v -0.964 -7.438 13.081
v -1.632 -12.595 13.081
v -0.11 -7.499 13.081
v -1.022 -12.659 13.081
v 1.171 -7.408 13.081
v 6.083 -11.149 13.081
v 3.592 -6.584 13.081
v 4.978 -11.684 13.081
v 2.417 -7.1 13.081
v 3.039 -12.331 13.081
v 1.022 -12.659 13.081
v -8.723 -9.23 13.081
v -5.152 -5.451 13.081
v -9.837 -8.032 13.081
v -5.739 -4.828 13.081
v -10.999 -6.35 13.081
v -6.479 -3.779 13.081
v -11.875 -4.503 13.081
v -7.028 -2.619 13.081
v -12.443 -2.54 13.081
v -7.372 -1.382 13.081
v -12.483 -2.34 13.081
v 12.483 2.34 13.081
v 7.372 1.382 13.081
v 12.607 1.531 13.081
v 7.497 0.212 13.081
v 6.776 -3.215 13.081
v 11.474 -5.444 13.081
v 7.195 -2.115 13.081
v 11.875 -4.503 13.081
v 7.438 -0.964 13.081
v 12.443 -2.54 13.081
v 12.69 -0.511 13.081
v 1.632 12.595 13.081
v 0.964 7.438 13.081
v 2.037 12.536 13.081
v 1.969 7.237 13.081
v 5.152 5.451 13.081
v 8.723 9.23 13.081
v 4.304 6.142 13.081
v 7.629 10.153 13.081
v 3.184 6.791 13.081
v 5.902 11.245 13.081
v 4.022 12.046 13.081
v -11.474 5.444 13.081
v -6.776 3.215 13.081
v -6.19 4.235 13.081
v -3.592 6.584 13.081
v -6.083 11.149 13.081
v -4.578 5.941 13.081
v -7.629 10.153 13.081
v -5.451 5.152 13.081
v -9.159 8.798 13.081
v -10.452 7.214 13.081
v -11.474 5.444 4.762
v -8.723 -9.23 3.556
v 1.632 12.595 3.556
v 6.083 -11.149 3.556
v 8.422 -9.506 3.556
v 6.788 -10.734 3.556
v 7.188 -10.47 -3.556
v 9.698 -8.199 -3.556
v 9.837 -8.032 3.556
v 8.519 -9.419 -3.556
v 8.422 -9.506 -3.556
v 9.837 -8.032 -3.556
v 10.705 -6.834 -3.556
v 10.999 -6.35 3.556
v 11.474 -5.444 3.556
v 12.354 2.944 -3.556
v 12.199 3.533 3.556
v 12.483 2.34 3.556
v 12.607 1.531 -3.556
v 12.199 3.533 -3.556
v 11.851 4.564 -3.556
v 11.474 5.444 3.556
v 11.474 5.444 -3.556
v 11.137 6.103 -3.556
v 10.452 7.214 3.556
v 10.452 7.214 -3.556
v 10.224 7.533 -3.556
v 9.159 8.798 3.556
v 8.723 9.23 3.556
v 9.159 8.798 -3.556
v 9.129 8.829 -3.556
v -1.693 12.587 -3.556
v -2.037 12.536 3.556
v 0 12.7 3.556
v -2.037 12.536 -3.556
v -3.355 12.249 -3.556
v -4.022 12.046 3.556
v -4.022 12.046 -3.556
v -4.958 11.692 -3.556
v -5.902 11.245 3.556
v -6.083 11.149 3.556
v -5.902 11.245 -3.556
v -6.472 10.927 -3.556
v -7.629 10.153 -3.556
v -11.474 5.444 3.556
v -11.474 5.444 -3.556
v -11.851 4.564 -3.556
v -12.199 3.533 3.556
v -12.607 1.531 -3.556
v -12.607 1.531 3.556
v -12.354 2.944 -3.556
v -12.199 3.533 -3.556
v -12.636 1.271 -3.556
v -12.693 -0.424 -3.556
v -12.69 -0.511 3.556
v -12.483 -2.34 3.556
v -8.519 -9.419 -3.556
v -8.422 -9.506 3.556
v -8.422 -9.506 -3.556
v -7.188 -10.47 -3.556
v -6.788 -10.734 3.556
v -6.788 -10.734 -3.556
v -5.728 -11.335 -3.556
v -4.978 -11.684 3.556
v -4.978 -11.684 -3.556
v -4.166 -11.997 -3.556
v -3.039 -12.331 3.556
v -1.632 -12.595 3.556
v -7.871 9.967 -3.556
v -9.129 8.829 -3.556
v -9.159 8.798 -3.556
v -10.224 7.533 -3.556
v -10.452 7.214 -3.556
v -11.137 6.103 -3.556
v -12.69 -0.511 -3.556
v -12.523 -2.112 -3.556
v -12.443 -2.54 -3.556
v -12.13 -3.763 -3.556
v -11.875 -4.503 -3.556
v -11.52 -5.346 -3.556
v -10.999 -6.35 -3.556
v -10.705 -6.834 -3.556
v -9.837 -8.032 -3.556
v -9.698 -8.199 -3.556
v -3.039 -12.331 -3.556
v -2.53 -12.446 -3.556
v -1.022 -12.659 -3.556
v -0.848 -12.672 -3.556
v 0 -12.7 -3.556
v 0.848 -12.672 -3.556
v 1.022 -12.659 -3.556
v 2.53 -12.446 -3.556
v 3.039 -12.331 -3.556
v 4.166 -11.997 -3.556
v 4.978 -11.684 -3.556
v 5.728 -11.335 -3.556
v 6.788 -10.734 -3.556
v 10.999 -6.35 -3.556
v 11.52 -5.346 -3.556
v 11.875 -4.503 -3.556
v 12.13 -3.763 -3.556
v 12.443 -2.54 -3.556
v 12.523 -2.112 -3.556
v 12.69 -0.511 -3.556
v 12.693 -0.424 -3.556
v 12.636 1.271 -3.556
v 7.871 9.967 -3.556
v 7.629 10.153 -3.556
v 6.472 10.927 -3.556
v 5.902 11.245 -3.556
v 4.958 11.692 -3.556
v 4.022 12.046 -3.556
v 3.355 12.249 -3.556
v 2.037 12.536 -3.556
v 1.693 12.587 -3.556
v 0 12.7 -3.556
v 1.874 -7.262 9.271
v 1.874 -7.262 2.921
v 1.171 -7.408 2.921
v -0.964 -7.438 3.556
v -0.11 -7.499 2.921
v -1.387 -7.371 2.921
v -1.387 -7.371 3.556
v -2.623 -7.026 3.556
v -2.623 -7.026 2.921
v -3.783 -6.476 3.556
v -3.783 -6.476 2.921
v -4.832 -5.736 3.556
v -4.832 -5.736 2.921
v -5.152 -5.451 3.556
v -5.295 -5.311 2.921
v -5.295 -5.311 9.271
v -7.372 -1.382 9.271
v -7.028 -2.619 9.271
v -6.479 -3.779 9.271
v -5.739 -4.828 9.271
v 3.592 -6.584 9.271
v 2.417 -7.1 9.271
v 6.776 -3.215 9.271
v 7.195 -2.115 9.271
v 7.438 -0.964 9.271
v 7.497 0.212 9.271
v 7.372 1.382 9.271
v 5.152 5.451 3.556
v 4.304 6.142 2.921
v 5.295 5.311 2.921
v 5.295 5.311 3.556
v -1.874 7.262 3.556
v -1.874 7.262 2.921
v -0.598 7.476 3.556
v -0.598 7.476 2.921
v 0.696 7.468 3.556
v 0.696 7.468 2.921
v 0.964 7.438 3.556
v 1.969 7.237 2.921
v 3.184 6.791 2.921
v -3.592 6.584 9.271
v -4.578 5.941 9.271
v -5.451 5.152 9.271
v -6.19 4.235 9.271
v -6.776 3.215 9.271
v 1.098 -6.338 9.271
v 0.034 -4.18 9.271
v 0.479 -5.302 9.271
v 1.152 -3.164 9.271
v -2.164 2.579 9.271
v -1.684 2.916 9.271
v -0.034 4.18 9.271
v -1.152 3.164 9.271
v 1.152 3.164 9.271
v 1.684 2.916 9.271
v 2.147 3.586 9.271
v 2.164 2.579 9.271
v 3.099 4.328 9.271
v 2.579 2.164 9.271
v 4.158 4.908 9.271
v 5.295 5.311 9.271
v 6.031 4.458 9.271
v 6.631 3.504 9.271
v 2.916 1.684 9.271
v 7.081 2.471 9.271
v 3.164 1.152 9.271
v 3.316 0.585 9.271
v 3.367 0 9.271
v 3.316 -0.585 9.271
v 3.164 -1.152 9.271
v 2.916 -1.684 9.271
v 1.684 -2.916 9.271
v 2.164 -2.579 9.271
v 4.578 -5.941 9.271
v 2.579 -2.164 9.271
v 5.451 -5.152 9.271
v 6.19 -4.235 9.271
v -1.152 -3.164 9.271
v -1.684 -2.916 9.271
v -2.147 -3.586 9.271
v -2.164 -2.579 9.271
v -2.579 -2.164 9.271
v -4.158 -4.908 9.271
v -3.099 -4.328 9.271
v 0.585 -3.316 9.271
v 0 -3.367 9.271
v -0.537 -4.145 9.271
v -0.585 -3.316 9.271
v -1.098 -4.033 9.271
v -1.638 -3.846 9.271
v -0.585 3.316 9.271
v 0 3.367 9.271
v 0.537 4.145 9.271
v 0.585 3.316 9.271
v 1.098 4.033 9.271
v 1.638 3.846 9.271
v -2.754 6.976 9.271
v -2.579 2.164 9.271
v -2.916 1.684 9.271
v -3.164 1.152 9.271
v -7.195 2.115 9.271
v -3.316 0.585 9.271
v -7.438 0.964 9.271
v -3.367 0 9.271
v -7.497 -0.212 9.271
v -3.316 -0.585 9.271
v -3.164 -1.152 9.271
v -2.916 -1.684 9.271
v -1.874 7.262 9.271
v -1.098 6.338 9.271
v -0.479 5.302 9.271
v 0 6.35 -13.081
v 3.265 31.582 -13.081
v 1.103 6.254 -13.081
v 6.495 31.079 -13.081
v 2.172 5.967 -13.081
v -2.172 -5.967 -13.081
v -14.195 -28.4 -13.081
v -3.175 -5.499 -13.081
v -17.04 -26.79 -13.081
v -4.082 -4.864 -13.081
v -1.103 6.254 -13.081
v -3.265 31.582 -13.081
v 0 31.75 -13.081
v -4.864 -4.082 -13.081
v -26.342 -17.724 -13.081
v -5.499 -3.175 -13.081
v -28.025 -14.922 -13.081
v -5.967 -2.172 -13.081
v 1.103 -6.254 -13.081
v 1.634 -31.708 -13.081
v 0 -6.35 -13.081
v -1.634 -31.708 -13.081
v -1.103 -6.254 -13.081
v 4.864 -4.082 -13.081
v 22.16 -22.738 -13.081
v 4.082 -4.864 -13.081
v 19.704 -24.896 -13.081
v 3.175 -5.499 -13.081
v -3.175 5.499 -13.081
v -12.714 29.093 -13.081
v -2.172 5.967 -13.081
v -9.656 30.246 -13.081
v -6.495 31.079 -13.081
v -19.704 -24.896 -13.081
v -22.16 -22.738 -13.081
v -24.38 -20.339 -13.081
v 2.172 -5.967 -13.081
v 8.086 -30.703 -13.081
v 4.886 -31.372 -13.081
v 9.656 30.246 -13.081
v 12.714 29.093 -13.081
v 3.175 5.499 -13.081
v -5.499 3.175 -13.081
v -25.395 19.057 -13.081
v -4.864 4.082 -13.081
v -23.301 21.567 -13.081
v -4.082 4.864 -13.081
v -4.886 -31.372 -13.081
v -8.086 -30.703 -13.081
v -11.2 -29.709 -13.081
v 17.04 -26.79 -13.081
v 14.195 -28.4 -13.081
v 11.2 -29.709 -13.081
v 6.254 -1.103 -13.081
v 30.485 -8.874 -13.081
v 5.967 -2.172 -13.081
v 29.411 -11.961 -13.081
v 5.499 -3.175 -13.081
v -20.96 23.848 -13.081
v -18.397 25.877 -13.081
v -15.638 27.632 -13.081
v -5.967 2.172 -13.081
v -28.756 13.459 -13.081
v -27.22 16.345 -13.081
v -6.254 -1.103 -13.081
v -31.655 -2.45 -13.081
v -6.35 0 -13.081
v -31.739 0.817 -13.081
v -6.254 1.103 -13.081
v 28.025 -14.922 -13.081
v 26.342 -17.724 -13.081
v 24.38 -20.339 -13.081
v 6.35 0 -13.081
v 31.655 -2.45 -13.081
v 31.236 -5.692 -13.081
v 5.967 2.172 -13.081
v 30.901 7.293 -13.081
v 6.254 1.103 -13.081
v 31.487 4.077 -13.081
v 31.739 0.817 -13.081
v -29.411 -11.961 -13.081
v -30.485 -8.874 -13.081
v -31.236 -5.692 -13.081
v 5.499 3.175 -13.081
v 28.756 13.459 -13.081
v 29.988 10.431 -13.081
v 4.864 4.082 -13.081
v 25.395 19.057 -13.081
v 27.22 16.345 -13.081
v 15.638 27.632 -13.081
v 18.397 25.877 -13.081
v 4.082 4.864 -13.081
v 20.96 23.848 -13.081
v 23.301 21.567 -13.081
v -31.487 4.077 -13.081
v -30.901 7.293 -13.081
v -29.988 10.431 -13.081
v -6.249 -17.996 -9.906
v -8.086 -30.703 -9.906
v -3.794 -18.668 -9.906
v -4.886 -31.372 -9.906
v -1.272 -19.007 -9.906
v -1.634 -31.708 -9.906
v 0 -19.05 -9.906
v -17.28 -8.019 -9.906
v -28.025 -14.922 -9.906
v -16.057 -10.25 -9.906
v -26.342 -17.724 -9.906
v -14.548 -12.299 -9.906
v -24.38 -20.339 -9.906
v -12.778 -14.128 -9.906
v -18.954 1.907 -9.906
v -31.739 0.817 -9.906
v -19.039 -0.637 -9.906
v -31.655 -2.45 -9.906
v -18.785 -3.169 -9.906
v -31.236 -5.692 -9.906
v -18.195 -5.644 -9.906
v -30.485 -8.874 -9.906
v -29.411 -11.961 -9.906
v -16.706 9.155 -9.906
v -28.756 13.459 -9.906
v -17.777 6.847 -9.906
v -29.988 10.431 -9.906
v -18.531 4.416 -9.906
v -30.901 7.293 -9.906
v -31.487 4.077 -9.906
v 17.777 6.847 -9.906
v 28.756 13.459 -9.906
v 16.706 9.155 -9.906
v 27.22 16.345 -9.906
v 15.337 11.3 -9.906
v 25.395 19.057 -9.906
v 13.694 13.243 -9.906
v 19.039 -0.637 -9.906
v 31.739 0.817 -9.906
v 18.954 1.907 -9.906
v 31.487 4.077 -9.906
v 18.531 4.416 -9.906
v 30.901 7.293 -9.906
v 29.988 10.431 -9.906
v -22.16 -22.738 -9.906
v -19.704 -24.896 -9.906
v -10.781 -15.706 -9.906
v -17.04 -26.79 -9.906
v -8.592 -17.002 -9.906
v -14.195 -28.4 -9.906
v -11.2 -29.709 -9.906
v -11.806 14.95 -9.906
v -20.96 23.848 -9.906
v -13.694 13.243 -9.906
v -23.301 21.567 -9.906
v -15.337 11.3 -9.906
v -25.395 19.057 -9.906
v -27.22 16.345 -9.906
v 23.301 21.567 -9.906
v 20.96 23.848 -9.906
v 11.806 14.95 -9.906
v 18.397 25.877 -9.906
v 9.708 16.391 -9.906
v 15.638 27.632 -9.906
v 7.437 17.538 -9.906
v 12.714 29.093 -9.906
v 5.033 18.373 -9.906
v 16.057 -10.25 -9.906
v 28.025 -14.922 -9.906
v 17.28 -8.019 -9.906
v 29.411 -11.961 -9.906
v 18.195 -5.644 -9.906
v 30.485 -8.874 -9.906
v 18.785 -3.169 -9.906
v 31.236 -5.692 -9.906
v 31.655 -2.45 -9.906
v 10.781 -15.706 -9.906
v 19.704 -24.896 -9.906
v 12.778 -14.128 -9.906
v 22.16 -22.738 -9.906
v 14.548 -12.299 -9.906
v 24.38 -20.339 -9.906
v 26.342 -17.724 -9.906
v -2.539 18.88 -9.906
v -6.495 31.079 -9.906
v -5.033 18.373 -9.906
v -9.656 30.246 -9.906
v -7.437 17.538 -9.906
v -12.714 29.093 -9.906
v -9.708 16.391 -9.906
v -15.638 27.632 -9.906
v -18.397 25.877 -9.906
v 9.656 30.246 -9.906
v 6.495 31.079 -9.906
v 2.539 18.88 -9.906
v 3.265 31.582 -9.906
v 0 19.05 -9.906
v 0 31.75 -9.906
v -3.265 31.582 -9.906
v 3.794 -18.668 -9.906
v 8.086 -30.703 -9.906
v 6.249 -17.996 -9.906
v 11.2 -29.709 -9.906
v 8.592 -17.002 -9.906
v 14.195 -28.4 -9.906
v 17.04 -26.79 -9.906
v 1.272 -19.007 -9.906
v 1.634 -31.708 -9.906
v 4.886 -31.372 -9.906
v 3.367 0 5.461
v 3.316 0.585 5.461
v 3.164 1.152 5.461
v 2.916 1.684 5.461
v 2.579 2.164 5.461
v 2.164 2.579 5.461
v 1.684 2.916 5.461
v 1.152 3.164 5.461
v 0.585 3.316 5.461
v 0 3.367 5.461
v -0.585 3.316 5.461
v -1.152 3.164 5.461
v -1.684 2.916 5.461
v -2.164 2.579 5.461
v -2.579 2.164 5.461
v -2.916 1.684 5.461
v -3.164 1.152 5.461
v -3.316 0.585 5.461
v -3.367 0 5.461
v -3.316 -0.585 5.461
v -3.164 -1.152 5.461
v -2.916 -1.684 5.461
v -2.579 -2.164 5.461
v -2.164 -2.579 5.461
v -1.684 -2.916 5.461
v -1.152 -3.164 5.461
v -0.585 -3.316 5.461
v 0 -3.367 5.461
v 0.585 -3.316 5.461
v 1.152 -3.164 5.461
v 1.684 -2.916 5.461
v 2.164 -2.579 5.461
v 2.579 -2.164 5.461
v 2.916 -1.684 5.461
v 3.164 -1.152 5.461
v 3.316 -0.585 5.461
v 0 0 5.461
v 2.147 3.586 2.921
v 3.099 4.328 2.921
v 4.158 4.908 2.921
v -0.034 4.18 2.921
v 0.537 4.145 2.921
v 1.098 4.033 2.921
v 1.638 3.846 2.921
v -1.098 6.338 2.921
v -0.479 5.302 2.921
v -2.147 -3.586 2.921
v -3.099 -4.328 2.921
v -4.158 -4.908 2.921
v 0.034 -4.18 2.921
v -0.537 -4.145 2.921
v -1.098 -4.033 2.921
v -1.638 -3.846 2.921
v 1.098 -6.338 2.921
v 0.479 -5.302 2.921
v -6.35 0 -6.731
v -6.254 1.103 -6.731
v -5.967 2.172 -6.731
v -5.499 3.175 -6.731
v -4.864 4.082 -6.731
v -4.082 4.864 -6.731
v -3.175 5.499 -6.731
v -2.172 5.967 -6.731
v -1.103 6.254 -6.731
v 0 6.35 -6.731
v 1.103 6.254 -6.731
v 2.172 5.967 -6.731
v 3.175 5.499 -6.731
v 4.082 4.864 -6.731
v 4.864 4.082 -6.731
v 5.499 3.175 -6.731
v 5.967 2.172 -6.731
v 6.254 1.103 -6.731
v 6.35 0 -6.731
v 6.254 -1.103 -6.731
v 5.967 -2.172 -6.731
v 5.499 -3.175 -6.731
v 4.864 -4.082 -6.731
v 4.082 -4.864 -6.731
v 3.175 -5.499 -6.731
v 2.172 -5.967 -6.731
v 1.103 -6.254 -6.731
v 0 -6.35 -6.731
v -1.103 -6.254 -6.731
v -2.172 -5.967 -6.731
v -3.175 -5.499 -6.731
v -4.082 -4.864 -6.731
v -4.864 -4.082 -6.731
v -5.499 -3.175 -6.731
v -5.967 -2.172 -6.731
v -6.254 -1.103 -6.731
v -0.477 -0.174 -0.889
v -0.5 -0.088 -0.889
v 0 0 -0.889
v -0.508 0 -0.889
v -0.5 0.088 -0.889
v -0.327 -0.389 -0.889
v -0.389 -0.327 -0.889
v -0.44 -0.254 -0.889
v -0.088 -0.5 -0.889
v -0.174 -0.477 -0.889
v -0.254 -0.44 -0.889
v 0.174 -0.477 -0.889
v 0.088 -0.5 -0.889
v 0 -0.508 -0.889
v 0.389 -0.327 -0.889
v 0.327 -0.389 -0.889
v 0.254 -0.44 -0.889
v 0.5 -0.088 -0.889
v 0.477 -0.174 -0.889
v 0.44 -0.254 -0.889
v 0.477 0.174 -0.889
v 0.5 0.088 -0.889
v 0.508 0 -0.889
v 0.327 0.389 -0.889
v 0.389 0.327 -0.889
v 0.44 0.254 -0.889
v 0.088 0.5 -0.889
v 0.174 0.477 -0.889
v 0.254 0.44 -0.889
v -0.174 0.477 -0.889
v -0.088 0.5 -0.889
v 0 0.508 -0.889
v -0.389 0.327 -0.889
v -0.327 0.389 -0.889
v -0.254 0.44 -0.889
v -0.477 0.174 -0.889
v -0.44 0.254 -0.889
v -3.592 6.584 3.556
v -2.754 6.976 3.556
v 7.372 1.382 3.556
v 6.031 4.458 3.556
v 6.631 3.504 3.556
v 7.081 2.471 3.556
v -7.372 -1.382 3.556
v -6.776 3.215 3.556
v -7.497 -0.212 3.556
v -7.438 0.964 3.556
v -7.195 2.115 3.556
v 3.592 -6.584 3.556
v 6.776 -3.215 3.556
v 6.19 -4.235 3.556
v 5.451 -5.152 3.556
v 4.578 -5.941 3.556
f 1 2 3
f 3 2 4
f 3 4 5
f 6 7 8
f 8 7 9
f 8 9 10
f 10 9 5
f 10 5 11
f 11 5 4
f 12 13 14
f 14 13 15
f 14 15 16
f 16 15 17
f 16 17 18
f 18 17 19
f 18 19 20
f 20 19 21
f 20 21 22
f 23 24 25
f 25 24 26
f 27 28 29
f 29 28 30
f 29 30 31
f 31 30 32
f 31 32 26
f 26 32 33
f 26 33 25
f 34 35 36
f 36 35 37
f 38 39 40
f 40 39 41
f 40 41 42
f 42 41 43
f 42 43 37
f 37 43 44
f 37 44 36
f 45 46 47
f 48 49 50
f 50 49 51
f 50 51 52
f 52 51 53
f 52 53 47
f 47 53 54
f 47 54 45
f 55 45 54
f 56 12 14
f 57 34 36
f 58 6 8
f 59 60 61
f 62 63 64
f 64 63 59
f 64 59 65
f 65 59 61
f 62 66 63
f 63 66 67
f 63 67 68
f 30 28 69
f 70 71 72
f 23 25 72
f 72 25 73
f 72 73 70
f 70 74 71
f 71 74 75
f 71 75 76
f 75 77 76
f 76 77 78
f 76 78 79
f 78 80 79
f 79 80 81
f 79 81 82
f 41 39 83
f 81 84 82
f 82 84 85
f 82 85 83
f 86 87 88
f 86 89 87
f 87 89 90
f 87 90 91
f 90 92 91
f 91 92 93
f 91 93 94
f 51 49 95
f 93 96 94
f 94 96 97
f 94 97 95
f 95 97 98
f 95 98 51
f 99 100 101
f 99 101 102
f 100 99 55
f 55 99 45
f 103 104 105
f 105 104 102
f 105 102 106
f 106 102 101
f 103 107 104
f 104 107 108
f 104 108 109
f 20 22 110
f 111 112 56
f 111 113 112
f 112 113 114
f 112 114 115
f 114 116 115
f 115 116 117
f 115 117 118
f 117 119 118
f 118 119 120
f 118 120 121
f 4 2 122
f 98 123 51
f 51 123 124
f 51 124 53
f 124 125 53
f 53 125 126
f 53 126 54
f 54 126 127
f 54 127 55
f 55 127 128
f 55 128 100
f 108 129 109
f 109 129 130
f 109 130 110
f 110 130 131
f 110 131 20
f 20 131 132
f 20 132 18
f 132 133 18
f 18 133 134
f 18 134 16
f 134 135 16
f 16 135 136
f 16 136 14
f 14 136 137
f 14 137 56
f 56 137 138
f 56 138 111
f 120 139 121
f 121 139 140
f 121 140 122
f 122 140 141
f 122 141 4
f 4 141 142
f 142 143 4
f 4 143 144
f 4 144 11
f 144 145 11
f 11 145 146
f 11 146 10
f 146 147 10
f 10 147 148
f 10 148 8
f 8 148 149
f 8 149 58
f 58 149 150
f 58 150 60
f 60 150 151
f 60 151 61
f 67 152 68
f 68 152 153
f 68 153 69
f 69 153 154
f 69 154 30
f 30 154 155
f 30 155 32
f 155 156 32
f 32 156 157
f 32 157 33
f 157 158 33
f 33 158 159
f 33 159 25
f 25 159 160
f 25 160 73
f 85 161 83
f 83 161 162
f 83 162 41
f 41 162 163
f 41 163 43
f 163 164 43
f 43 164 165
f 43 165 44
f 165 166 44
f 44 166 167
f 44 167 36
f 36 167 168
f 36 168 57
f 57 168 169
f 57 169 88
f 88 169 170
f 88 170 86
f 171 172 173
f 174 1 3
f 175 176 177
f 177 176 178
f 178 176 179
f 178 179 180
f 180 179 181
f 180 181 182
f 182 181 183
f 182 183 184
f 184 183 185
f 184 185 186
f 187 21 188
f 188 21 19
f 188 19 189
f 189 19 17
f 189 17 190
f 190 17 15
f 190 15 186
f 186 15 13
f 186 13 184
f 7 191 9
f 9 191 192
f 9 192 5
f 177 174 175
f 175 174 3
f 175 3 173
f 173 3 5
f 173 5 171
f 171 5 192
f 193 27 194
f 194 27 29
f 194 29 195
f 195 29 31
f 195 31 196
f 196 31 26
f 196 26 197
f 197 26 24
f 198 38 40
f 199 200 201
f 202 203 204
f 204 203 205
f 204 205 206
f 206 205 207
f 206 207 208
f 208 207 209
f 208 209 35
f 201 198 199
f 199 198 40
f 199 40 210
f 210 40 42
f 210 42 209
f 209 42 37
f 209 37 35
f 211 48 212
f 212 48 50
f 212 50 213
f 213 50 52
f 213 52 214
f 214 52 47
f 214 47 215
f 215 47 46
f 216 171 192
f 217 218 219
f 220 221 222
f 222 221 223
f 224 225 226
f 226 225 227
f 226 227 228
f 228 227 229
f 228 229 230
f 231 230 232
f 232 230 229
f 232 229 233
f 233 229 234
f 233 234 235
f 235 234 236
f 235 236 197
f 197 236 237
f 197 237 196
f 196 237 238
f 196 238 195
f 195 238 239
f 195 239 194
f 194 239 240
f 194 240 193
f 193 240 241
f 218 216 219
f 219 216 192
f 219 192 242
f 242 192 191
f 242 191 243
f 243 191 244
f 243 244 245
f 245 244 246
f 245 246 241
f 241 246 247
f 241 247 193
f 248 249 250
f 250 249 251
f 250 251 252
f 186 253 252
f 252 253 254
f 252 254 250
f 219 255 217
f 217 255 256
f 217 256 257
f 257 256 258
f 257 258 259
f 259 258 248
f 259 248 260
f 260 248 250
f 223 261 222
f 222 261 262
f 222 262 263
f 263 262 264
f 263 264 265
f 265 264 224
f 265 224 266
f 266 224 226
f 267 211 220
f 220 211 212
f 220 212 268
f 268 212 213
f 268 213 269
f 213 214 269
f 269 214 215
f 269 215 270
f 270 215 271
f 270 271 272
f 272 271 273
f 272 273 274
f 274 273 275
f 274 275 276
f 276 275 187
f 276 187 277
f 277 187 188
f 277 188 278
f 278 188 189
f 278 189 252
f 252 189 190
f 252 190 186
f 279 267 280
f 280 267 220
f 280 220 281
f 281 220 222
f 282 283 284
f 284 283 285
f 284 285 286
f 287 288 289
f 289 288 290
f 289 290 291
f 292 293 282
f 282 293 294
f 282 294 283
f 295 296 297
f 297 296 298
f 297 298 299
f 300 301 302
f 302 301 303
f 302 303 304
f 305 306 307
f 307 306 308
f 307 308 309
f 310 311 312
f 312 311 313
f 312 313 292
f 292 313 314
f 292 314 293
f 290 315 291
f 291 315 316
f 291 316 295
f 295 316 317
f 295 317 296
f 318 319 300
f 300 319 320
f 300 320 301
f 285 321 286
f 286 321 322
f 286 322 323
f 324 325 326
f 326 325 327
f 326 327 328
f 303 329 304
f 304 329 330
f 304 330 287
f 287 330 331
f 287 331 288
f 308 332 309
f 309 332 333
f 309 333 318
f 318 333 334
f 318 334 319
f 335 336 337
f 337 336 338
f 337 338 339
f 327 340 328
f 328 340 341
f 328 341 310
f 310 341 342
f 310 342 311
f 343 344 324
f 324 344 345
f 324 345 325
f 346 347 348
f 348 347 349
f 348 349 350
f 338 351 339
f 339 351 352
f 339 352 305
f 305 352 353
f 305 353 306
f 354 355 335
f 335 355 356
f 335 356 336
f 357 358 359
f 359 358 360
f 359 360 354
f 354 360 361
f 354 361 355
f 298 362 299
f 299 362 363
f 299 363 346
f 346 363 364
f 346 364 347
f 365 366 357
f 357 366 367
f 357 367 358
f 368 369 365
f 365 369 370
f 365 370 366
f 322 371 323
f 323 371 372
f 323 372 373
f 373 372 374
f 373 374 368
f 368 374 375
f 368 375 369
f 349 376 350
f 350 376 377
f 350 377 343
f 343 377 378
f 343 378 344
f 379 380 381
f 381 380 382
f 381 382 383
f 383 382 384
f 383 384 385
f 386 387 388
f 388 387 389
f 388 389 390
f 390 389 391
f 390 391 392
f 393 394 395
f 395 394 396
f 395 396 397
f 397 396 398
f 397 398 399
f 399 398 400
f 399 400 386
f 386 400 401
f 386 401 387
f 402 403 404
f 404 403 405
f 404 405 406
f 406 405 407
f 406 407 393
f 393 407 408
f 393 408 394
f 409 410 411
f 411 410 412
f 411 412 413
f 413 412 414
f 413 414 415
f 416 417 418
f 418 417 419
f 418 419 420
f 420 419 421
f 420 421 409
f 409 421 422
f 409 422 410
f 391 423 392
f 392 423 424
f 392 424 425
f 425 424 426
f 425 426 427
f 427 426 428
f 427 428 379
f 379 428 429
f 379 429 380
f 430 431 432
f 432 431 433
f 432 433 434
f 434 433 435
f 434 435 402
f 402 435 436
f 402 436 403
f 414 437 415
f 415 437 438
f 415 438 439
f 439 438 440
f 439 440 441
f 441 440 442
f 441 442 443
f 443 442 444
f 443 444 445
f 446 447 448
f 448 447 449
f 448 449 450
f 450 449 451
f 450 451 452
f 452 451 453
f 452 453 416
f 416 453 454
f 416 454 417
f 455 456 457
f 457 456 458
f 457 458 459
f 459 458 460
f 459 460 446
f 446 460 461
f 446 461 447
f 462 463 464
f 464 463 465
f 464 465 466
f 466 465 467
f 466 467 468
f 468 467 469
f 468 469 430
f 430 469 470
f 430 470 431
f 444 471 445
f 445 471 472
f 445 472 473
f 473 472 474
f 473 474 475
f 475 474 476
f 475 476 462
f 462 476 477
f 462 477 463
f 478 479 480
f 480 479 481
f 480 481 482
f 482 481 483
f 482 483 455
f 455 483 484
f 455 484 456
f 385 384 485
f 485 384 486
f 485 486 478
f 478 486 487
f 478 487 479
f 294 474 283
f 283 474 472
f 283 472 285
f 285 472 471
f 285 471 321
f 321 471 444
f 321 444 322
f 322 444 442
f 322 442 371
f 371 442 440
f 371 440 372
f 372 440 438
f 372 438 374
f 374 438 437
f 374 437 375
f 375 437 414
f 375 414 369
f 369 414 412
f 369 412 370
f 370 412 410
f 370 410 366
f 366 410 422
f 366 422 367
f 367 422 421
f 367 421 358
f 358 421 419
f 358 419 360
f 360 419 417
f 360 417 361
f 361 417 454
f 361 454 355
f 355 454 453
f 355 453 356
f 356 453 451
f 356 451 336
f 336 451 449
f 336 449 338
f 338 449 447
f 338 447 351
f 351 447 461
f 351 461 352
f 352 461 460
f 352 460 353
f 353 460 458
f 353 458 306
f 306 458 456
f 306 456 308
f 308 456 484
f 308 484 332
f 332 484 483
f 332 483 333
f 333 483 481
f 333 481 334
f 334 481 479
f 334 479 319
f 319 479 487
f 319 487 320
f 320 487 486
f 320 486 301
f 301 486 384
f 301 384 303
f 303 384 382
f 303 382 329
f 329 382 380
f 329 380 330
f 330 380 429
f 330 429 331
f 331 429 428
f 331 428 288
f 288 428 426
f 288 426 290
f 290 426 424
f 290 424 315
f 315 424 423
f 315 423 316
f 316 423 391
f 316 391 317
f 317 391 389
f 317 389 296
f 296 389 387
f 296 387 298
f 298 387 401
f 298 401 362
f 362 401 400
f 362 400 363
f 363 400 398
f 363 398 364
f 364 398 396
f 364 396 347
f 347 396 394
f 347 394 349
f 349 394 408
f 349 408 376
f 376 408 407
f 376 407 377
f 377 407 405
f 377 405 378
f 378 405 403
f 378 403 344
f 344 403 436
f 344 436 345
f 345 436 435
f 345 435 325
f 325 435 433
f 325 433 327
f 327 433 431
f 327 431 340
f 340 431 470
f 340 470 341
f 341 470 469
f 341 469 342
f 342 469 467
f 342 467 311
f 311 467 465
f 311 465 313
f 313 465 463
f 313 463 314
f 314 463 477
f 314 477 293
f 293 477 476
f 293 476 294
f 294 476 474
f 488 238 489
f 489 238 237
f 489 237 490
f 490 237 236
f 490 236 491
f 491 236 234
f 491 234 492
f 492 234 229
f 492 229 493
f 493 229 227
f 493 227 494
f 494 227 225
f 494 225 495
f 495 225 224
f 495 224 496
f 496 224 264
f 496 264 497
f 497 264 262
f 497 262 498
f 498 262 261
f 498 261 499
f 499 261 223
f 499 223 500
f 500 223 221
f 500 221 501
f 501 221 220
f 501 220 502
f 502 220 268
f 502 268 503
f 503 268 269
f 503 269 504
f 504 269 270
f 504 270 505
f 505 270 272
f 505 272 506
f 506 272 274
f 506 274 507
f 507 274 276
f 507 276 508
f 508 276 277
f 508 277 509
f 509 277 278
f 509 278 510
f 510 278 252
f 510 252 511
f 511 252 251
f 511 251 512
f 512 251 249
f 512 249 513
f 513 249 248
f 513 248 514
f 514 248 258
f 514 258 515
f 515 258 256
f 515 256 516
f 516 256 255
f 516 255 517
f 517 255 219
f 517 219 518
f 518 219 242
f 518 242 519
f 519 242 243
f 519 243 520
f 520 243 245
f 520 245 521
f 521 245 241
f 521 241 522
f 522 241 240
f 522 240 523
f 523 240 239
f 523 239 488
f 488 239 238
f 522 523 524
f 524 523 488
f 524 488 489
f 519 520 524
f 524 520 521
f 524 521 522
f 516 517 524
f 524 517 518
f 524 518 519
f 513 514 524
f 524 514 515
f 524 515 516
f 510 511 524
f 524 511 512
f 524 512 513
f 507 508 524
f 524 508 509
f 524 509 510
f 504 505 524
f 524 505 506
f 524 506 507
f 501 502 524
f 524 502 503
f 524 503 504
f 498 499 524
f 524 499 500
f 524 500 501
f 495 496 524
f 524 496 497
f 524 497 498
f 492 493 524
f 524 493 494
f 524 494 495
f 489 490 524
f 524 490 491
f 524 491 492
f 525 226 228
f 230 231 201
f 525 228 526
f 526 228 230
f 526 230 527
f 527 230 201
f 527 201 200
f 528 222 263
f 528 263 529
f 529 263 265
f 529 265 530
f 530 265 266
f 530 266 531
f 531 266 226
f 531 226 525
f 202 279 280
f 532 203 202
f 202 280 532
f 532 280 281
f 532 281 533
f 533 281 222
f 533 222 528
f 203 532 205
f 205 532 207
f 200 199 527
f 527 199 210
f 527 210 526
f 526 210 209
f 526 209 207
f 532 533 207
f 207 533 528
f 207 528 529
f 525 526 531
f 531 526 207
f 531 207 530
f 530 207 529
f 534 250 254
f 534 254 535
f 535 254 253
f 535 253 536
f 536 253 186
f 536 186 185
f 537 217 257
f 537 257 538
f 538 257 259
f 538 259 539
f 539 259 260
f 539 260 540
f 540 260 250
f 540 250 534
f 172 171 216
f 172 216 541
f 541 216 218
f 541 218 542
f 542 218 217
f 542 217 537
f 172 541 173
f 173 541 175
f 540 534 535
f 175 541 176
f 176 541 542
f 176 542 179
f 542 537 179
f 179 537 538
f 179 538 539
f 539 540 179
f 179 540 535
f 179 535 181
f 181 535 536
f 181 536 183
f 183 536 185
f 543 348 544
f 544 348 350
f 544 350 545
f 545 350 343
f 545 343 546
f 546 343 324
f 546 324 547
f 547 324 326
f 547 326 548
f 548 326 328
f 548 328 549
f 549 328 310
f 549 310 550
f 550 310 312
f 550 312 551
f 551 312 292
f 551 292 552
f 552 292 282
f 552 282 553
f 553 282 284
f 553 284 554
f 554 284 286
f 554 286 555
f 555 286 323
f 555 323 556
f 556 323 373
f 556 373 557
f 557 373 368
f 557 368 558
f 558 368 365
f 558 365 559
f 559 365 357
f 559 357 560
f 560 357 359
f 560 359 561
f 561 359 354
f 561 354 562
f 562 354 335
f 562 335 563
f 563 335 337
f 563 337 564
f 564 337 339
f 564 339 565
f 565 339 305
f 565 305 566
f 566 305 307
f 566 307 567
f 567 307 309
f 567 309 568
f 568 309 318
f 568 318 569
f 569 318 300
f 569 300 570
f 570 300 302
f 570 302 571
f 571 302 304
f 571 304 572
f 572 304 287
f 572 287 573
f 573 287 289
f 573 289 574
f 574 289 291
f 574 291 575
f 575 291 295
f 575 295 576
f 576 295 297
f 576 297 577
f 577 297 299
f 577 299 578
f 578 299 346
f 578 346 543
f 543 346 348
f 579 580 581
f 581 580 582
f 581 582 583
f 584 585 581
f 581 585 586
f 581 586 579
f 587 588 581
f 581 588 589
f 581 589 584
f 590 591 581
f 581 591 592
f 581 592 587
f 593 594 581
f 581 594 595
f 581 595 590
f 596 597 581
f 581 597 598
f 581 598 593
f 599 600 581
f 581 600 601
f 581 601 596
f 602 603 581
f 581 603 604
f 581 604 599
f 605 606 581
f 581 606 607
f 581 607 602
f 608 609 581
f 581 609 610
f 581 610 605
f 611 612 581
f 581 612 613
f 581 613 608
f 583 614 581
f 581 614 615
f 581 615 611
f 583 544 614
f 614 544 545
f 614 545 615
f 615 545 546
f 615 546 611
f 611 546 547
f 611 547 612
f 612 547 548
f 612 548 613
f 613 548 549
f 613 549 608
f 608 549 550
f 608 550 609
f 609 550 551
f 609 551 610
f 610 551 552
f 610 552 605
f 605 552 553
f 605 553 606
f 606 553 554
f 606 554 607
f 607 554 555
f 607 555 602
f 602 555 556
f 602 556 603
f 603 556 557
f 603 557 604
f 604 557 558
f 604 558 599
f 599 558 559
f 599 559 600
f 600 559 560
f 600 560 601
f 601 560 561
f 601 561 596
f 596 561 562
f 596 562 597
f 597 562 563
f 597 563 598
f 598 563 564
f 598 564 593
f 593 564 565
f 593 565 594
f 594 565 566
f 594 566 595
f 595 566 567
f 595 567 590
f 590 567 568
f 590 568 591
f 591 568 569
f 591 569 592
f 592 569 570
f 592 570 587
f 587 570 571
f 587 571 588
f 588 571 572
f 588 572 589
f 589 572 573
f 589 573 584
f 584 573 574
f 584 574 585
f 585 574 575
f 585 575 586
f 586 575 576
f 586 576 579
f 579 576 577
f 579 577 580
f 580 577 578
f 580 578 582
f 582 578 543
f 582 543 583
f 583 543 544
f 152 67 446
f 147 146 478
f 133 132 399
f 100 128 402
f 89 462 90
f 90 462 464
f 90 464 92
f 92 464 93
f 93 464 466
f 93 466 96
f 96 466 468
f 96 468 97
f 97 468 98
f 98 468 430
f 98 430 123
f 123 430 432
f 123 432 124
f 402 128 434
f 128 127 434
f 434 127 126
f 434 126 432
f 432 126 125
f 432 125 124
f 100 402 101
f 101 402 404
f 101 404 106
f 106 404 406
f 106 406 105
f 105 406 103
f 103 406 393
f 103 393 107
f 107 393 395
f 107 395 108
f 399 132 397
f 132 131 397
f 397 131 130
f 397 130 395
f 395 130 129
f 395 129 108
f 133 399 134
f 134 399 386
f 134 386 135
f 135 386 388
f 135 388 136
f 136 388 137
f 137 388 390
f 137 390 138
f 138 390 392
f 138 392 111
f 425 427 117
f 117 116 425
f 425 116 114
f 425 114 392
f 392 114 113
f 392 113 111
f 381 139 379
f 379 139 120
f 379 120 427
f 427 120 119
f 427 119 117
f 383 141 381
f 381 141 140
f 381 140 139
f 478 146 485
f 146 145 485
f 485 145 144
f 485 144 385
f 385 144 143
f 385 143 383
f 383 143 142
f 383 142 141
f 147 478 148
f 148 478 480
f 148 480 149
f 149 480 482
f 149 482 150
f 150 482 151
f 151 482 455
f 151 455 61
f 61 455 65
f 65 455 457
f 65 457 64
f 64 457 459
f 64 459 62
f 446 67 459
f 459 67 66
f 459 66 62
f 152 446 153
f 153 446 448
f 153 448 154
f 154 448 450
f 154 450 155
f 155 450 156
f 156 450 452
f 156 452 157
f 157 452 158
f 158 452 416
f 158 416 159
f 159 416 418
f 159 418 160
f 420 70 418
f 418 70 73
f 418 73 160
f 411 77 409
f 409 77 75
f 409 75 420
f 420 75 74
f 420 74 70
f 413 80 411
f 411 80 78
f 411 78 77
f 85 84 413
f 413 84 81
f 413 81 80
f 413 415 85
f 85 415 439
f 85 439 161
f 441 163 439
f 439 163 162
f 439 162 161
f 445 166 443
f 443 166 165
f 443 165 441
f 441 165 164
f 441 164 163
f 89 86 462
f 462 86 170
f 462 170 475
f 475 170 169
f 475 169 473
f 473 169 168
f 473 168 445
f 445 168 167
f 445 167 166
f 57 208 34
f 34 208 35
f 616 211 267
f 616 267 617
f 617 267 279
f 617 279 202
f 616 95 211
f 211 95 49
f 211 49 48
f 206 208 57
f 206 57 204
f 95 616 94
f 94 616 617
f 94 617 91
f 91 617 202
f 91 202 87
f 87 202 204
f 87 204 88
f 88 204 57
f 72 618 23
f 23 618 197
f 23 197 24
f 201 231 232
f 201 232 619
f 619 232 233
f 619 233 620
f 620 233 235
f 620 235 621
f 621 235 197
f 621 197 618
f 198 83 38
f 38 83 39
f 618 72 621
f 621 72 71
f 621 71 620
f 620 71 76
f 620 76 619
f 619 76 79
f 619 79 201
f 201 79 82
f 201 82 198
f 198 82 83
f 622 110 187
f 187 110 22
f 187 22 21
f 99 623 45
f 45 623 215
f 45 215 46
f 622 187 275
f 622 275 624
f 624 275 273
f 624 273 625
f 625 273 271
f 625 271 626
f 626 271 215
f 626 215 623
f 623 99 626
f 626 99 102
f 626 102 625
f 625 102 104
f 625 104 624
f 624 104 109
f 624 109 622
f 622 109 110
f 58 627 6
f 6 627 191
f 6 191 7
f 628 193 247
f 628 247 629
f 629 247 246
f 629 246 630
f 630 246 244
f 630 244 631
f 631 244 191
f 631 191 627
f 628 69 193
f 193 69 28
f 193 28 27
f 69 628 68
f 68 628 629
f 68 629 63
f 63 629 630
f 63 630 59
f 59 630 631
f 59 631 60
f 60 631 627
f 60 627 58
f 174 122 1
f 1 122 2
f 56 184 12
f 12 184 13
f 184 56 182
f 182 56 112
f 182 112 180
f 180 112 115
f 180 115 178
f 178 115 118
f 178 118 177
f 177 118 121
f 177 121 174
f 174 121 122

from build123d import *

# Parameters (mm, degrees)
SKETCH11_R          = 3.3672
CUT_EXTRUDE5_DEPTH  = 3.81
SKETCH11_5_R        = 3.3672
CUT_EXTRUDE7_DEPTH  = 7.62
CUT_EXTRUDE8_DEPTH  = 10.16
SKETCH13_R          = 6.35
CUT_EXTRUDE10_DEPTH = 12.192
CHAMFER1_SIZE       = 5.842
CHAMFER2_SIZE       = 6.35
CUT_EXTRUDE11_DEPTH = 9.525


with BuildPart() as part:
    # Sketch2 → Revolve1 (revolve)
    with BuildSketch(Plane(origin=(0, 0, 0), x_dir=(0, 0, -1), z_dir=(1, 0, 0))):
        Polygon((-13.081, 0), (-13.081, 9.525), (-13.081, 12.7), (-9.906, 12.7), (9.906, 12.7), (9.906, 31.75), (13.081, 31.75), (13.081, 0), align=None)
    revolve(axis=Axis((0, 0, -13.081), (0, 0, 1)))

    # Sketch11 → Cut-Extrude5 (cut)
    # profile 1 of 4: a face of its own
    with BuildSketch(Plane.XY.offset(13.081)):
        with BuildLine():
            ThreePointArc((-5.295442149, -5.31114794), (-1.969377828, -7.23681912), (1.873833325, -7.262144908))
            ThreePointArc((1.873833325, -7.262144908), (0.767613275, -5.832118974), (0.033615166, -4.179864833))
            ThreePointArc((0.033615166, -4.179864833), (-1.097599909, -4.033320523), (-2.147079662, -3.586425647))
            ThreePointArc((-2.147079662, -3.586425647), (-3.617120551, -4.638887883), (-5.295442149, -5.31114794))
        make_face()
    # profile 2 of 4: a face of its own
    with BuildSketch(Plane.XY.offset(13.081)):
        with BuildLine():
            ThreePointArc((7.5, 0), (6.926969616, 2.875255109), (5.295442149, 5.31114794))
            ThreePointArc((5.295442149, 5.31114794), (3.617120551, 4.638887883), (2.147079662, 3.586425647))
            ThreePointArc((2.147079662, 3.586425647), (1.097599909, 4.033320523), (-0.033615166, 4.179864833))
            ThreePointArc((-0.033615166, 4.179864833), (-0.767613275, 5.832118974), (-1.873833325, 7.262144908))
            ThreePointArc((-1.873833325, 7.262144908), (-7.23681912, 1.969377828), (-5.295442149, -5.31114794))
            ThreePointArc((-5.295442149, -5.31114794), (-3.617120551, -4.638887883), (-2.147079662, -3.586425647))
            ThreePointArc((-2.147079662, -3.586425647), (-1.097599909, -4.033320523), (0.033615166, -4.179864833))
            ThreePointArc((0.033615166, -4.179864833), (0.767613275, -5.832118974), (1.873833325, -7.262144908))
            ThreePointArc((1.873833325, -7.262144908), (5.928901666, -4.593269536), (7.5, 0))
        make_face()
        Circle(SKETCH11_R, mode=Mode.SUBTRACT)
    # profile 3 of 4: a face of its own
    with BuildSketch(Plane.XY.offset(13.081)):
        Circle(SKETCH11_R)
    # profile 4 of 4: a face of its own
    with BuildSketch(Plane.XY.offset(13.081)):
        with BuildLine():
            ThreePointArc((2.147079662, 3.586425647), (3.617120551, 4.638887883), (5.295442149, 5.31114794))
            ThreePointArc((5.295442149, 5.31114794), (1.969377828, 7.23681912), (-1.873833325, 7.262144908))
            ThreePointArc((-1.873833325, 7.262144908), (-0.767613275, 5.832118974), (-0.033615166, 4.179864833))
            ThreePointArc((-0.033615166, 4.179864833), (1.097599909, 4.033320523), (2.147079662, 3.586425647))
        make_face()
    extrude(amount=-CUT_EXTRUDE5_DEPTH, mode=Mode.SUBTRACT)

    # Sketch11<5> → Cut-Extrude7 (cut)
    with BuildSketch(Plane.XY.offset(13.081)):
        Circle(SKETCH11_5_R)
    extrude(amount=-CUT_EXTRUDE7_DEPTH, mode=Mode.SUBTRACT)

    # Sketch11<6> → Cut-Extrude8 (cut)
    with BuildSketch(Plane.XY.offset(13.081)):
        with BuildLine():
            ThreePointArc((-5.295442149, -5.31114794), (-1.969377828, -7.23681912), (1.873833325, -7.262144908))
            ThreePointArc((1.873833325, -7.262144908), (0.767613275, -5.832118974), (0.033615166, -4.179864833))
            ThreePointArc((0.033615166, -4.179864833), (-1.097599909, -4.033320523), (-2.147079662, -3.586425647))
            ThreePointArc((-2.147079662, -3.586425647), (-3.617120551, -4.638887883), (-5.295442149, -5.31114794))
        make_face()
        with BuildLine():
            ThreePointArc((2.147079662, 3.586425647), (3.617120551, 4.638887883), (5.295442149, 5.31114794))
            ThreePointArc((5.295442149, 5.31114794), (1.969377828, 7.23681912), (-1.873833325, 7.262144908))
            ThreePointArc((-1.873833325, 7.262144908), (-0.767613275, 5.832118974), (-0.033615166, 4.179864833))
            ThreePointArc((-0.033615166, 4.179864833), (1.097599909, 4.033320523), (2.147079662, 3.586425647))
        make_face()
    extrude(amount=-CUT_EXTRUDE8_DEPTH, mode=Mode.SUBTRACT)

    # Sketch13 → Cut-Extrude10 (cut)
    with BuildSketch(Plane(origin=(0, 0, -13.081), x_dir=(-1, 0, 0), z_dir=(0, 0, -1))):
        Circle(SKETCH13_R)
    extrude(amount=-CUT_EXTRUDE10_DEPTH, mode=Mode.SUBTRACT)

    # Chamfer1
    chamfer1_edges = [part.edges().sort_by_distance(p)[0] for p in [
        (6.35, 0, -0.889),
    ]]
    chamfer(chamfer1_edges, length=CHAMFER1_SIZE)

    # Chamfer2
    chamfer2_edges = [part.edges().sort_by_distance(p)[0] for p in [
        (0, -12.7, -9.906),
    ]]
    chamfer(chamfer2_edges, length=CHAMFER2_SIZE)

    # Sketch14 → Cut-Extrude11 (cut)
    with BuildSketch(Plane.XY.offset(13.081)):
        with BuildLine():
            Line((-6.77593781, 3.215068708), (-11.473921358, 5.444183013))
            ThreePointArc((-11.473921358, 5.444183013), (-12.594692746, 1.632089038), (-12.482607856, -2.339765182))
            Line((-12.482607856, -2.339765182), (-7.371618813, -1.381751092))
            ThreePointArc((-7.371618813, -1.381751092), (-7.437810677, 0.963832109), (-6.77593781, 3.215068708))
        make_face()
        with BuildLine():
            ThreePointArc((1.632089038, 12.594692746), (-2.339765182, 12.482607856), (-6.082586885, 11.148638338))
            Line((-6.082586885, 11.148638338), (-3.592078869, 6.583841538))
            ThreePointArc((-3.592078869, 6.583841538), (-1.381751092, 7.371618813), (0.963832109, 7.437810677))
            Line((0.963832109, 7.437810677), (1.632089038, 12.594692746))
        make_face()
        with BuildLine():
            ThreePointArc((12.482607856, 2.339765182), (11.148638338, 6.082586885), (8.723362422, 9.230002603))
            Line((8.723362422, 9.230002603), (5.151591981, 5.450788939))
            ThreePointArc((5.151591981, 5.450788939), (6.583841538, 3.592078869), (7.371618813, 1.381751092))
            Line((7.371618813, 1.381751092), (12.482607856, 2.339765182))
        make_face()
        with BuildLine():
            Line((3.592078869, -6.583841538), (6.082586885, -11.148638338))
            ThreePointArc((6.082586885, -11.148638338), (9.230002603, -8.723362422), (11.473921358, -5.444183013))
            Line((11.473921358, -5.444183013), (6.77593781, -3.215068708))
            ThreePointArc((6.77593781, -3.215068708), (5.450788939, -5.151591981), (3.592078869, -6.583841538))
        make_face()
        with BuildLine():
            Line((-5.151591981, -5.450788939), (-8.723362422, -9.230002603))
            ThreePointArc((-8.723362422, -9.230002603), (-5.444183013, -11.473921358), (-1.632089038, -12.594692746))
            Line((-1.632089038, -12.594692746), (-0.963832109, -7.437810677))
            ThreePointArc((-0.963832109, -7.437810677), (-3.215068708, -6.77593781), (-5.151591981, -5.450788939))
        make_face()
    extrude(amount=-CUT_EXTRUDE11_DEPTH, mode=Mode.SUBTRACT)


solid = part.part
